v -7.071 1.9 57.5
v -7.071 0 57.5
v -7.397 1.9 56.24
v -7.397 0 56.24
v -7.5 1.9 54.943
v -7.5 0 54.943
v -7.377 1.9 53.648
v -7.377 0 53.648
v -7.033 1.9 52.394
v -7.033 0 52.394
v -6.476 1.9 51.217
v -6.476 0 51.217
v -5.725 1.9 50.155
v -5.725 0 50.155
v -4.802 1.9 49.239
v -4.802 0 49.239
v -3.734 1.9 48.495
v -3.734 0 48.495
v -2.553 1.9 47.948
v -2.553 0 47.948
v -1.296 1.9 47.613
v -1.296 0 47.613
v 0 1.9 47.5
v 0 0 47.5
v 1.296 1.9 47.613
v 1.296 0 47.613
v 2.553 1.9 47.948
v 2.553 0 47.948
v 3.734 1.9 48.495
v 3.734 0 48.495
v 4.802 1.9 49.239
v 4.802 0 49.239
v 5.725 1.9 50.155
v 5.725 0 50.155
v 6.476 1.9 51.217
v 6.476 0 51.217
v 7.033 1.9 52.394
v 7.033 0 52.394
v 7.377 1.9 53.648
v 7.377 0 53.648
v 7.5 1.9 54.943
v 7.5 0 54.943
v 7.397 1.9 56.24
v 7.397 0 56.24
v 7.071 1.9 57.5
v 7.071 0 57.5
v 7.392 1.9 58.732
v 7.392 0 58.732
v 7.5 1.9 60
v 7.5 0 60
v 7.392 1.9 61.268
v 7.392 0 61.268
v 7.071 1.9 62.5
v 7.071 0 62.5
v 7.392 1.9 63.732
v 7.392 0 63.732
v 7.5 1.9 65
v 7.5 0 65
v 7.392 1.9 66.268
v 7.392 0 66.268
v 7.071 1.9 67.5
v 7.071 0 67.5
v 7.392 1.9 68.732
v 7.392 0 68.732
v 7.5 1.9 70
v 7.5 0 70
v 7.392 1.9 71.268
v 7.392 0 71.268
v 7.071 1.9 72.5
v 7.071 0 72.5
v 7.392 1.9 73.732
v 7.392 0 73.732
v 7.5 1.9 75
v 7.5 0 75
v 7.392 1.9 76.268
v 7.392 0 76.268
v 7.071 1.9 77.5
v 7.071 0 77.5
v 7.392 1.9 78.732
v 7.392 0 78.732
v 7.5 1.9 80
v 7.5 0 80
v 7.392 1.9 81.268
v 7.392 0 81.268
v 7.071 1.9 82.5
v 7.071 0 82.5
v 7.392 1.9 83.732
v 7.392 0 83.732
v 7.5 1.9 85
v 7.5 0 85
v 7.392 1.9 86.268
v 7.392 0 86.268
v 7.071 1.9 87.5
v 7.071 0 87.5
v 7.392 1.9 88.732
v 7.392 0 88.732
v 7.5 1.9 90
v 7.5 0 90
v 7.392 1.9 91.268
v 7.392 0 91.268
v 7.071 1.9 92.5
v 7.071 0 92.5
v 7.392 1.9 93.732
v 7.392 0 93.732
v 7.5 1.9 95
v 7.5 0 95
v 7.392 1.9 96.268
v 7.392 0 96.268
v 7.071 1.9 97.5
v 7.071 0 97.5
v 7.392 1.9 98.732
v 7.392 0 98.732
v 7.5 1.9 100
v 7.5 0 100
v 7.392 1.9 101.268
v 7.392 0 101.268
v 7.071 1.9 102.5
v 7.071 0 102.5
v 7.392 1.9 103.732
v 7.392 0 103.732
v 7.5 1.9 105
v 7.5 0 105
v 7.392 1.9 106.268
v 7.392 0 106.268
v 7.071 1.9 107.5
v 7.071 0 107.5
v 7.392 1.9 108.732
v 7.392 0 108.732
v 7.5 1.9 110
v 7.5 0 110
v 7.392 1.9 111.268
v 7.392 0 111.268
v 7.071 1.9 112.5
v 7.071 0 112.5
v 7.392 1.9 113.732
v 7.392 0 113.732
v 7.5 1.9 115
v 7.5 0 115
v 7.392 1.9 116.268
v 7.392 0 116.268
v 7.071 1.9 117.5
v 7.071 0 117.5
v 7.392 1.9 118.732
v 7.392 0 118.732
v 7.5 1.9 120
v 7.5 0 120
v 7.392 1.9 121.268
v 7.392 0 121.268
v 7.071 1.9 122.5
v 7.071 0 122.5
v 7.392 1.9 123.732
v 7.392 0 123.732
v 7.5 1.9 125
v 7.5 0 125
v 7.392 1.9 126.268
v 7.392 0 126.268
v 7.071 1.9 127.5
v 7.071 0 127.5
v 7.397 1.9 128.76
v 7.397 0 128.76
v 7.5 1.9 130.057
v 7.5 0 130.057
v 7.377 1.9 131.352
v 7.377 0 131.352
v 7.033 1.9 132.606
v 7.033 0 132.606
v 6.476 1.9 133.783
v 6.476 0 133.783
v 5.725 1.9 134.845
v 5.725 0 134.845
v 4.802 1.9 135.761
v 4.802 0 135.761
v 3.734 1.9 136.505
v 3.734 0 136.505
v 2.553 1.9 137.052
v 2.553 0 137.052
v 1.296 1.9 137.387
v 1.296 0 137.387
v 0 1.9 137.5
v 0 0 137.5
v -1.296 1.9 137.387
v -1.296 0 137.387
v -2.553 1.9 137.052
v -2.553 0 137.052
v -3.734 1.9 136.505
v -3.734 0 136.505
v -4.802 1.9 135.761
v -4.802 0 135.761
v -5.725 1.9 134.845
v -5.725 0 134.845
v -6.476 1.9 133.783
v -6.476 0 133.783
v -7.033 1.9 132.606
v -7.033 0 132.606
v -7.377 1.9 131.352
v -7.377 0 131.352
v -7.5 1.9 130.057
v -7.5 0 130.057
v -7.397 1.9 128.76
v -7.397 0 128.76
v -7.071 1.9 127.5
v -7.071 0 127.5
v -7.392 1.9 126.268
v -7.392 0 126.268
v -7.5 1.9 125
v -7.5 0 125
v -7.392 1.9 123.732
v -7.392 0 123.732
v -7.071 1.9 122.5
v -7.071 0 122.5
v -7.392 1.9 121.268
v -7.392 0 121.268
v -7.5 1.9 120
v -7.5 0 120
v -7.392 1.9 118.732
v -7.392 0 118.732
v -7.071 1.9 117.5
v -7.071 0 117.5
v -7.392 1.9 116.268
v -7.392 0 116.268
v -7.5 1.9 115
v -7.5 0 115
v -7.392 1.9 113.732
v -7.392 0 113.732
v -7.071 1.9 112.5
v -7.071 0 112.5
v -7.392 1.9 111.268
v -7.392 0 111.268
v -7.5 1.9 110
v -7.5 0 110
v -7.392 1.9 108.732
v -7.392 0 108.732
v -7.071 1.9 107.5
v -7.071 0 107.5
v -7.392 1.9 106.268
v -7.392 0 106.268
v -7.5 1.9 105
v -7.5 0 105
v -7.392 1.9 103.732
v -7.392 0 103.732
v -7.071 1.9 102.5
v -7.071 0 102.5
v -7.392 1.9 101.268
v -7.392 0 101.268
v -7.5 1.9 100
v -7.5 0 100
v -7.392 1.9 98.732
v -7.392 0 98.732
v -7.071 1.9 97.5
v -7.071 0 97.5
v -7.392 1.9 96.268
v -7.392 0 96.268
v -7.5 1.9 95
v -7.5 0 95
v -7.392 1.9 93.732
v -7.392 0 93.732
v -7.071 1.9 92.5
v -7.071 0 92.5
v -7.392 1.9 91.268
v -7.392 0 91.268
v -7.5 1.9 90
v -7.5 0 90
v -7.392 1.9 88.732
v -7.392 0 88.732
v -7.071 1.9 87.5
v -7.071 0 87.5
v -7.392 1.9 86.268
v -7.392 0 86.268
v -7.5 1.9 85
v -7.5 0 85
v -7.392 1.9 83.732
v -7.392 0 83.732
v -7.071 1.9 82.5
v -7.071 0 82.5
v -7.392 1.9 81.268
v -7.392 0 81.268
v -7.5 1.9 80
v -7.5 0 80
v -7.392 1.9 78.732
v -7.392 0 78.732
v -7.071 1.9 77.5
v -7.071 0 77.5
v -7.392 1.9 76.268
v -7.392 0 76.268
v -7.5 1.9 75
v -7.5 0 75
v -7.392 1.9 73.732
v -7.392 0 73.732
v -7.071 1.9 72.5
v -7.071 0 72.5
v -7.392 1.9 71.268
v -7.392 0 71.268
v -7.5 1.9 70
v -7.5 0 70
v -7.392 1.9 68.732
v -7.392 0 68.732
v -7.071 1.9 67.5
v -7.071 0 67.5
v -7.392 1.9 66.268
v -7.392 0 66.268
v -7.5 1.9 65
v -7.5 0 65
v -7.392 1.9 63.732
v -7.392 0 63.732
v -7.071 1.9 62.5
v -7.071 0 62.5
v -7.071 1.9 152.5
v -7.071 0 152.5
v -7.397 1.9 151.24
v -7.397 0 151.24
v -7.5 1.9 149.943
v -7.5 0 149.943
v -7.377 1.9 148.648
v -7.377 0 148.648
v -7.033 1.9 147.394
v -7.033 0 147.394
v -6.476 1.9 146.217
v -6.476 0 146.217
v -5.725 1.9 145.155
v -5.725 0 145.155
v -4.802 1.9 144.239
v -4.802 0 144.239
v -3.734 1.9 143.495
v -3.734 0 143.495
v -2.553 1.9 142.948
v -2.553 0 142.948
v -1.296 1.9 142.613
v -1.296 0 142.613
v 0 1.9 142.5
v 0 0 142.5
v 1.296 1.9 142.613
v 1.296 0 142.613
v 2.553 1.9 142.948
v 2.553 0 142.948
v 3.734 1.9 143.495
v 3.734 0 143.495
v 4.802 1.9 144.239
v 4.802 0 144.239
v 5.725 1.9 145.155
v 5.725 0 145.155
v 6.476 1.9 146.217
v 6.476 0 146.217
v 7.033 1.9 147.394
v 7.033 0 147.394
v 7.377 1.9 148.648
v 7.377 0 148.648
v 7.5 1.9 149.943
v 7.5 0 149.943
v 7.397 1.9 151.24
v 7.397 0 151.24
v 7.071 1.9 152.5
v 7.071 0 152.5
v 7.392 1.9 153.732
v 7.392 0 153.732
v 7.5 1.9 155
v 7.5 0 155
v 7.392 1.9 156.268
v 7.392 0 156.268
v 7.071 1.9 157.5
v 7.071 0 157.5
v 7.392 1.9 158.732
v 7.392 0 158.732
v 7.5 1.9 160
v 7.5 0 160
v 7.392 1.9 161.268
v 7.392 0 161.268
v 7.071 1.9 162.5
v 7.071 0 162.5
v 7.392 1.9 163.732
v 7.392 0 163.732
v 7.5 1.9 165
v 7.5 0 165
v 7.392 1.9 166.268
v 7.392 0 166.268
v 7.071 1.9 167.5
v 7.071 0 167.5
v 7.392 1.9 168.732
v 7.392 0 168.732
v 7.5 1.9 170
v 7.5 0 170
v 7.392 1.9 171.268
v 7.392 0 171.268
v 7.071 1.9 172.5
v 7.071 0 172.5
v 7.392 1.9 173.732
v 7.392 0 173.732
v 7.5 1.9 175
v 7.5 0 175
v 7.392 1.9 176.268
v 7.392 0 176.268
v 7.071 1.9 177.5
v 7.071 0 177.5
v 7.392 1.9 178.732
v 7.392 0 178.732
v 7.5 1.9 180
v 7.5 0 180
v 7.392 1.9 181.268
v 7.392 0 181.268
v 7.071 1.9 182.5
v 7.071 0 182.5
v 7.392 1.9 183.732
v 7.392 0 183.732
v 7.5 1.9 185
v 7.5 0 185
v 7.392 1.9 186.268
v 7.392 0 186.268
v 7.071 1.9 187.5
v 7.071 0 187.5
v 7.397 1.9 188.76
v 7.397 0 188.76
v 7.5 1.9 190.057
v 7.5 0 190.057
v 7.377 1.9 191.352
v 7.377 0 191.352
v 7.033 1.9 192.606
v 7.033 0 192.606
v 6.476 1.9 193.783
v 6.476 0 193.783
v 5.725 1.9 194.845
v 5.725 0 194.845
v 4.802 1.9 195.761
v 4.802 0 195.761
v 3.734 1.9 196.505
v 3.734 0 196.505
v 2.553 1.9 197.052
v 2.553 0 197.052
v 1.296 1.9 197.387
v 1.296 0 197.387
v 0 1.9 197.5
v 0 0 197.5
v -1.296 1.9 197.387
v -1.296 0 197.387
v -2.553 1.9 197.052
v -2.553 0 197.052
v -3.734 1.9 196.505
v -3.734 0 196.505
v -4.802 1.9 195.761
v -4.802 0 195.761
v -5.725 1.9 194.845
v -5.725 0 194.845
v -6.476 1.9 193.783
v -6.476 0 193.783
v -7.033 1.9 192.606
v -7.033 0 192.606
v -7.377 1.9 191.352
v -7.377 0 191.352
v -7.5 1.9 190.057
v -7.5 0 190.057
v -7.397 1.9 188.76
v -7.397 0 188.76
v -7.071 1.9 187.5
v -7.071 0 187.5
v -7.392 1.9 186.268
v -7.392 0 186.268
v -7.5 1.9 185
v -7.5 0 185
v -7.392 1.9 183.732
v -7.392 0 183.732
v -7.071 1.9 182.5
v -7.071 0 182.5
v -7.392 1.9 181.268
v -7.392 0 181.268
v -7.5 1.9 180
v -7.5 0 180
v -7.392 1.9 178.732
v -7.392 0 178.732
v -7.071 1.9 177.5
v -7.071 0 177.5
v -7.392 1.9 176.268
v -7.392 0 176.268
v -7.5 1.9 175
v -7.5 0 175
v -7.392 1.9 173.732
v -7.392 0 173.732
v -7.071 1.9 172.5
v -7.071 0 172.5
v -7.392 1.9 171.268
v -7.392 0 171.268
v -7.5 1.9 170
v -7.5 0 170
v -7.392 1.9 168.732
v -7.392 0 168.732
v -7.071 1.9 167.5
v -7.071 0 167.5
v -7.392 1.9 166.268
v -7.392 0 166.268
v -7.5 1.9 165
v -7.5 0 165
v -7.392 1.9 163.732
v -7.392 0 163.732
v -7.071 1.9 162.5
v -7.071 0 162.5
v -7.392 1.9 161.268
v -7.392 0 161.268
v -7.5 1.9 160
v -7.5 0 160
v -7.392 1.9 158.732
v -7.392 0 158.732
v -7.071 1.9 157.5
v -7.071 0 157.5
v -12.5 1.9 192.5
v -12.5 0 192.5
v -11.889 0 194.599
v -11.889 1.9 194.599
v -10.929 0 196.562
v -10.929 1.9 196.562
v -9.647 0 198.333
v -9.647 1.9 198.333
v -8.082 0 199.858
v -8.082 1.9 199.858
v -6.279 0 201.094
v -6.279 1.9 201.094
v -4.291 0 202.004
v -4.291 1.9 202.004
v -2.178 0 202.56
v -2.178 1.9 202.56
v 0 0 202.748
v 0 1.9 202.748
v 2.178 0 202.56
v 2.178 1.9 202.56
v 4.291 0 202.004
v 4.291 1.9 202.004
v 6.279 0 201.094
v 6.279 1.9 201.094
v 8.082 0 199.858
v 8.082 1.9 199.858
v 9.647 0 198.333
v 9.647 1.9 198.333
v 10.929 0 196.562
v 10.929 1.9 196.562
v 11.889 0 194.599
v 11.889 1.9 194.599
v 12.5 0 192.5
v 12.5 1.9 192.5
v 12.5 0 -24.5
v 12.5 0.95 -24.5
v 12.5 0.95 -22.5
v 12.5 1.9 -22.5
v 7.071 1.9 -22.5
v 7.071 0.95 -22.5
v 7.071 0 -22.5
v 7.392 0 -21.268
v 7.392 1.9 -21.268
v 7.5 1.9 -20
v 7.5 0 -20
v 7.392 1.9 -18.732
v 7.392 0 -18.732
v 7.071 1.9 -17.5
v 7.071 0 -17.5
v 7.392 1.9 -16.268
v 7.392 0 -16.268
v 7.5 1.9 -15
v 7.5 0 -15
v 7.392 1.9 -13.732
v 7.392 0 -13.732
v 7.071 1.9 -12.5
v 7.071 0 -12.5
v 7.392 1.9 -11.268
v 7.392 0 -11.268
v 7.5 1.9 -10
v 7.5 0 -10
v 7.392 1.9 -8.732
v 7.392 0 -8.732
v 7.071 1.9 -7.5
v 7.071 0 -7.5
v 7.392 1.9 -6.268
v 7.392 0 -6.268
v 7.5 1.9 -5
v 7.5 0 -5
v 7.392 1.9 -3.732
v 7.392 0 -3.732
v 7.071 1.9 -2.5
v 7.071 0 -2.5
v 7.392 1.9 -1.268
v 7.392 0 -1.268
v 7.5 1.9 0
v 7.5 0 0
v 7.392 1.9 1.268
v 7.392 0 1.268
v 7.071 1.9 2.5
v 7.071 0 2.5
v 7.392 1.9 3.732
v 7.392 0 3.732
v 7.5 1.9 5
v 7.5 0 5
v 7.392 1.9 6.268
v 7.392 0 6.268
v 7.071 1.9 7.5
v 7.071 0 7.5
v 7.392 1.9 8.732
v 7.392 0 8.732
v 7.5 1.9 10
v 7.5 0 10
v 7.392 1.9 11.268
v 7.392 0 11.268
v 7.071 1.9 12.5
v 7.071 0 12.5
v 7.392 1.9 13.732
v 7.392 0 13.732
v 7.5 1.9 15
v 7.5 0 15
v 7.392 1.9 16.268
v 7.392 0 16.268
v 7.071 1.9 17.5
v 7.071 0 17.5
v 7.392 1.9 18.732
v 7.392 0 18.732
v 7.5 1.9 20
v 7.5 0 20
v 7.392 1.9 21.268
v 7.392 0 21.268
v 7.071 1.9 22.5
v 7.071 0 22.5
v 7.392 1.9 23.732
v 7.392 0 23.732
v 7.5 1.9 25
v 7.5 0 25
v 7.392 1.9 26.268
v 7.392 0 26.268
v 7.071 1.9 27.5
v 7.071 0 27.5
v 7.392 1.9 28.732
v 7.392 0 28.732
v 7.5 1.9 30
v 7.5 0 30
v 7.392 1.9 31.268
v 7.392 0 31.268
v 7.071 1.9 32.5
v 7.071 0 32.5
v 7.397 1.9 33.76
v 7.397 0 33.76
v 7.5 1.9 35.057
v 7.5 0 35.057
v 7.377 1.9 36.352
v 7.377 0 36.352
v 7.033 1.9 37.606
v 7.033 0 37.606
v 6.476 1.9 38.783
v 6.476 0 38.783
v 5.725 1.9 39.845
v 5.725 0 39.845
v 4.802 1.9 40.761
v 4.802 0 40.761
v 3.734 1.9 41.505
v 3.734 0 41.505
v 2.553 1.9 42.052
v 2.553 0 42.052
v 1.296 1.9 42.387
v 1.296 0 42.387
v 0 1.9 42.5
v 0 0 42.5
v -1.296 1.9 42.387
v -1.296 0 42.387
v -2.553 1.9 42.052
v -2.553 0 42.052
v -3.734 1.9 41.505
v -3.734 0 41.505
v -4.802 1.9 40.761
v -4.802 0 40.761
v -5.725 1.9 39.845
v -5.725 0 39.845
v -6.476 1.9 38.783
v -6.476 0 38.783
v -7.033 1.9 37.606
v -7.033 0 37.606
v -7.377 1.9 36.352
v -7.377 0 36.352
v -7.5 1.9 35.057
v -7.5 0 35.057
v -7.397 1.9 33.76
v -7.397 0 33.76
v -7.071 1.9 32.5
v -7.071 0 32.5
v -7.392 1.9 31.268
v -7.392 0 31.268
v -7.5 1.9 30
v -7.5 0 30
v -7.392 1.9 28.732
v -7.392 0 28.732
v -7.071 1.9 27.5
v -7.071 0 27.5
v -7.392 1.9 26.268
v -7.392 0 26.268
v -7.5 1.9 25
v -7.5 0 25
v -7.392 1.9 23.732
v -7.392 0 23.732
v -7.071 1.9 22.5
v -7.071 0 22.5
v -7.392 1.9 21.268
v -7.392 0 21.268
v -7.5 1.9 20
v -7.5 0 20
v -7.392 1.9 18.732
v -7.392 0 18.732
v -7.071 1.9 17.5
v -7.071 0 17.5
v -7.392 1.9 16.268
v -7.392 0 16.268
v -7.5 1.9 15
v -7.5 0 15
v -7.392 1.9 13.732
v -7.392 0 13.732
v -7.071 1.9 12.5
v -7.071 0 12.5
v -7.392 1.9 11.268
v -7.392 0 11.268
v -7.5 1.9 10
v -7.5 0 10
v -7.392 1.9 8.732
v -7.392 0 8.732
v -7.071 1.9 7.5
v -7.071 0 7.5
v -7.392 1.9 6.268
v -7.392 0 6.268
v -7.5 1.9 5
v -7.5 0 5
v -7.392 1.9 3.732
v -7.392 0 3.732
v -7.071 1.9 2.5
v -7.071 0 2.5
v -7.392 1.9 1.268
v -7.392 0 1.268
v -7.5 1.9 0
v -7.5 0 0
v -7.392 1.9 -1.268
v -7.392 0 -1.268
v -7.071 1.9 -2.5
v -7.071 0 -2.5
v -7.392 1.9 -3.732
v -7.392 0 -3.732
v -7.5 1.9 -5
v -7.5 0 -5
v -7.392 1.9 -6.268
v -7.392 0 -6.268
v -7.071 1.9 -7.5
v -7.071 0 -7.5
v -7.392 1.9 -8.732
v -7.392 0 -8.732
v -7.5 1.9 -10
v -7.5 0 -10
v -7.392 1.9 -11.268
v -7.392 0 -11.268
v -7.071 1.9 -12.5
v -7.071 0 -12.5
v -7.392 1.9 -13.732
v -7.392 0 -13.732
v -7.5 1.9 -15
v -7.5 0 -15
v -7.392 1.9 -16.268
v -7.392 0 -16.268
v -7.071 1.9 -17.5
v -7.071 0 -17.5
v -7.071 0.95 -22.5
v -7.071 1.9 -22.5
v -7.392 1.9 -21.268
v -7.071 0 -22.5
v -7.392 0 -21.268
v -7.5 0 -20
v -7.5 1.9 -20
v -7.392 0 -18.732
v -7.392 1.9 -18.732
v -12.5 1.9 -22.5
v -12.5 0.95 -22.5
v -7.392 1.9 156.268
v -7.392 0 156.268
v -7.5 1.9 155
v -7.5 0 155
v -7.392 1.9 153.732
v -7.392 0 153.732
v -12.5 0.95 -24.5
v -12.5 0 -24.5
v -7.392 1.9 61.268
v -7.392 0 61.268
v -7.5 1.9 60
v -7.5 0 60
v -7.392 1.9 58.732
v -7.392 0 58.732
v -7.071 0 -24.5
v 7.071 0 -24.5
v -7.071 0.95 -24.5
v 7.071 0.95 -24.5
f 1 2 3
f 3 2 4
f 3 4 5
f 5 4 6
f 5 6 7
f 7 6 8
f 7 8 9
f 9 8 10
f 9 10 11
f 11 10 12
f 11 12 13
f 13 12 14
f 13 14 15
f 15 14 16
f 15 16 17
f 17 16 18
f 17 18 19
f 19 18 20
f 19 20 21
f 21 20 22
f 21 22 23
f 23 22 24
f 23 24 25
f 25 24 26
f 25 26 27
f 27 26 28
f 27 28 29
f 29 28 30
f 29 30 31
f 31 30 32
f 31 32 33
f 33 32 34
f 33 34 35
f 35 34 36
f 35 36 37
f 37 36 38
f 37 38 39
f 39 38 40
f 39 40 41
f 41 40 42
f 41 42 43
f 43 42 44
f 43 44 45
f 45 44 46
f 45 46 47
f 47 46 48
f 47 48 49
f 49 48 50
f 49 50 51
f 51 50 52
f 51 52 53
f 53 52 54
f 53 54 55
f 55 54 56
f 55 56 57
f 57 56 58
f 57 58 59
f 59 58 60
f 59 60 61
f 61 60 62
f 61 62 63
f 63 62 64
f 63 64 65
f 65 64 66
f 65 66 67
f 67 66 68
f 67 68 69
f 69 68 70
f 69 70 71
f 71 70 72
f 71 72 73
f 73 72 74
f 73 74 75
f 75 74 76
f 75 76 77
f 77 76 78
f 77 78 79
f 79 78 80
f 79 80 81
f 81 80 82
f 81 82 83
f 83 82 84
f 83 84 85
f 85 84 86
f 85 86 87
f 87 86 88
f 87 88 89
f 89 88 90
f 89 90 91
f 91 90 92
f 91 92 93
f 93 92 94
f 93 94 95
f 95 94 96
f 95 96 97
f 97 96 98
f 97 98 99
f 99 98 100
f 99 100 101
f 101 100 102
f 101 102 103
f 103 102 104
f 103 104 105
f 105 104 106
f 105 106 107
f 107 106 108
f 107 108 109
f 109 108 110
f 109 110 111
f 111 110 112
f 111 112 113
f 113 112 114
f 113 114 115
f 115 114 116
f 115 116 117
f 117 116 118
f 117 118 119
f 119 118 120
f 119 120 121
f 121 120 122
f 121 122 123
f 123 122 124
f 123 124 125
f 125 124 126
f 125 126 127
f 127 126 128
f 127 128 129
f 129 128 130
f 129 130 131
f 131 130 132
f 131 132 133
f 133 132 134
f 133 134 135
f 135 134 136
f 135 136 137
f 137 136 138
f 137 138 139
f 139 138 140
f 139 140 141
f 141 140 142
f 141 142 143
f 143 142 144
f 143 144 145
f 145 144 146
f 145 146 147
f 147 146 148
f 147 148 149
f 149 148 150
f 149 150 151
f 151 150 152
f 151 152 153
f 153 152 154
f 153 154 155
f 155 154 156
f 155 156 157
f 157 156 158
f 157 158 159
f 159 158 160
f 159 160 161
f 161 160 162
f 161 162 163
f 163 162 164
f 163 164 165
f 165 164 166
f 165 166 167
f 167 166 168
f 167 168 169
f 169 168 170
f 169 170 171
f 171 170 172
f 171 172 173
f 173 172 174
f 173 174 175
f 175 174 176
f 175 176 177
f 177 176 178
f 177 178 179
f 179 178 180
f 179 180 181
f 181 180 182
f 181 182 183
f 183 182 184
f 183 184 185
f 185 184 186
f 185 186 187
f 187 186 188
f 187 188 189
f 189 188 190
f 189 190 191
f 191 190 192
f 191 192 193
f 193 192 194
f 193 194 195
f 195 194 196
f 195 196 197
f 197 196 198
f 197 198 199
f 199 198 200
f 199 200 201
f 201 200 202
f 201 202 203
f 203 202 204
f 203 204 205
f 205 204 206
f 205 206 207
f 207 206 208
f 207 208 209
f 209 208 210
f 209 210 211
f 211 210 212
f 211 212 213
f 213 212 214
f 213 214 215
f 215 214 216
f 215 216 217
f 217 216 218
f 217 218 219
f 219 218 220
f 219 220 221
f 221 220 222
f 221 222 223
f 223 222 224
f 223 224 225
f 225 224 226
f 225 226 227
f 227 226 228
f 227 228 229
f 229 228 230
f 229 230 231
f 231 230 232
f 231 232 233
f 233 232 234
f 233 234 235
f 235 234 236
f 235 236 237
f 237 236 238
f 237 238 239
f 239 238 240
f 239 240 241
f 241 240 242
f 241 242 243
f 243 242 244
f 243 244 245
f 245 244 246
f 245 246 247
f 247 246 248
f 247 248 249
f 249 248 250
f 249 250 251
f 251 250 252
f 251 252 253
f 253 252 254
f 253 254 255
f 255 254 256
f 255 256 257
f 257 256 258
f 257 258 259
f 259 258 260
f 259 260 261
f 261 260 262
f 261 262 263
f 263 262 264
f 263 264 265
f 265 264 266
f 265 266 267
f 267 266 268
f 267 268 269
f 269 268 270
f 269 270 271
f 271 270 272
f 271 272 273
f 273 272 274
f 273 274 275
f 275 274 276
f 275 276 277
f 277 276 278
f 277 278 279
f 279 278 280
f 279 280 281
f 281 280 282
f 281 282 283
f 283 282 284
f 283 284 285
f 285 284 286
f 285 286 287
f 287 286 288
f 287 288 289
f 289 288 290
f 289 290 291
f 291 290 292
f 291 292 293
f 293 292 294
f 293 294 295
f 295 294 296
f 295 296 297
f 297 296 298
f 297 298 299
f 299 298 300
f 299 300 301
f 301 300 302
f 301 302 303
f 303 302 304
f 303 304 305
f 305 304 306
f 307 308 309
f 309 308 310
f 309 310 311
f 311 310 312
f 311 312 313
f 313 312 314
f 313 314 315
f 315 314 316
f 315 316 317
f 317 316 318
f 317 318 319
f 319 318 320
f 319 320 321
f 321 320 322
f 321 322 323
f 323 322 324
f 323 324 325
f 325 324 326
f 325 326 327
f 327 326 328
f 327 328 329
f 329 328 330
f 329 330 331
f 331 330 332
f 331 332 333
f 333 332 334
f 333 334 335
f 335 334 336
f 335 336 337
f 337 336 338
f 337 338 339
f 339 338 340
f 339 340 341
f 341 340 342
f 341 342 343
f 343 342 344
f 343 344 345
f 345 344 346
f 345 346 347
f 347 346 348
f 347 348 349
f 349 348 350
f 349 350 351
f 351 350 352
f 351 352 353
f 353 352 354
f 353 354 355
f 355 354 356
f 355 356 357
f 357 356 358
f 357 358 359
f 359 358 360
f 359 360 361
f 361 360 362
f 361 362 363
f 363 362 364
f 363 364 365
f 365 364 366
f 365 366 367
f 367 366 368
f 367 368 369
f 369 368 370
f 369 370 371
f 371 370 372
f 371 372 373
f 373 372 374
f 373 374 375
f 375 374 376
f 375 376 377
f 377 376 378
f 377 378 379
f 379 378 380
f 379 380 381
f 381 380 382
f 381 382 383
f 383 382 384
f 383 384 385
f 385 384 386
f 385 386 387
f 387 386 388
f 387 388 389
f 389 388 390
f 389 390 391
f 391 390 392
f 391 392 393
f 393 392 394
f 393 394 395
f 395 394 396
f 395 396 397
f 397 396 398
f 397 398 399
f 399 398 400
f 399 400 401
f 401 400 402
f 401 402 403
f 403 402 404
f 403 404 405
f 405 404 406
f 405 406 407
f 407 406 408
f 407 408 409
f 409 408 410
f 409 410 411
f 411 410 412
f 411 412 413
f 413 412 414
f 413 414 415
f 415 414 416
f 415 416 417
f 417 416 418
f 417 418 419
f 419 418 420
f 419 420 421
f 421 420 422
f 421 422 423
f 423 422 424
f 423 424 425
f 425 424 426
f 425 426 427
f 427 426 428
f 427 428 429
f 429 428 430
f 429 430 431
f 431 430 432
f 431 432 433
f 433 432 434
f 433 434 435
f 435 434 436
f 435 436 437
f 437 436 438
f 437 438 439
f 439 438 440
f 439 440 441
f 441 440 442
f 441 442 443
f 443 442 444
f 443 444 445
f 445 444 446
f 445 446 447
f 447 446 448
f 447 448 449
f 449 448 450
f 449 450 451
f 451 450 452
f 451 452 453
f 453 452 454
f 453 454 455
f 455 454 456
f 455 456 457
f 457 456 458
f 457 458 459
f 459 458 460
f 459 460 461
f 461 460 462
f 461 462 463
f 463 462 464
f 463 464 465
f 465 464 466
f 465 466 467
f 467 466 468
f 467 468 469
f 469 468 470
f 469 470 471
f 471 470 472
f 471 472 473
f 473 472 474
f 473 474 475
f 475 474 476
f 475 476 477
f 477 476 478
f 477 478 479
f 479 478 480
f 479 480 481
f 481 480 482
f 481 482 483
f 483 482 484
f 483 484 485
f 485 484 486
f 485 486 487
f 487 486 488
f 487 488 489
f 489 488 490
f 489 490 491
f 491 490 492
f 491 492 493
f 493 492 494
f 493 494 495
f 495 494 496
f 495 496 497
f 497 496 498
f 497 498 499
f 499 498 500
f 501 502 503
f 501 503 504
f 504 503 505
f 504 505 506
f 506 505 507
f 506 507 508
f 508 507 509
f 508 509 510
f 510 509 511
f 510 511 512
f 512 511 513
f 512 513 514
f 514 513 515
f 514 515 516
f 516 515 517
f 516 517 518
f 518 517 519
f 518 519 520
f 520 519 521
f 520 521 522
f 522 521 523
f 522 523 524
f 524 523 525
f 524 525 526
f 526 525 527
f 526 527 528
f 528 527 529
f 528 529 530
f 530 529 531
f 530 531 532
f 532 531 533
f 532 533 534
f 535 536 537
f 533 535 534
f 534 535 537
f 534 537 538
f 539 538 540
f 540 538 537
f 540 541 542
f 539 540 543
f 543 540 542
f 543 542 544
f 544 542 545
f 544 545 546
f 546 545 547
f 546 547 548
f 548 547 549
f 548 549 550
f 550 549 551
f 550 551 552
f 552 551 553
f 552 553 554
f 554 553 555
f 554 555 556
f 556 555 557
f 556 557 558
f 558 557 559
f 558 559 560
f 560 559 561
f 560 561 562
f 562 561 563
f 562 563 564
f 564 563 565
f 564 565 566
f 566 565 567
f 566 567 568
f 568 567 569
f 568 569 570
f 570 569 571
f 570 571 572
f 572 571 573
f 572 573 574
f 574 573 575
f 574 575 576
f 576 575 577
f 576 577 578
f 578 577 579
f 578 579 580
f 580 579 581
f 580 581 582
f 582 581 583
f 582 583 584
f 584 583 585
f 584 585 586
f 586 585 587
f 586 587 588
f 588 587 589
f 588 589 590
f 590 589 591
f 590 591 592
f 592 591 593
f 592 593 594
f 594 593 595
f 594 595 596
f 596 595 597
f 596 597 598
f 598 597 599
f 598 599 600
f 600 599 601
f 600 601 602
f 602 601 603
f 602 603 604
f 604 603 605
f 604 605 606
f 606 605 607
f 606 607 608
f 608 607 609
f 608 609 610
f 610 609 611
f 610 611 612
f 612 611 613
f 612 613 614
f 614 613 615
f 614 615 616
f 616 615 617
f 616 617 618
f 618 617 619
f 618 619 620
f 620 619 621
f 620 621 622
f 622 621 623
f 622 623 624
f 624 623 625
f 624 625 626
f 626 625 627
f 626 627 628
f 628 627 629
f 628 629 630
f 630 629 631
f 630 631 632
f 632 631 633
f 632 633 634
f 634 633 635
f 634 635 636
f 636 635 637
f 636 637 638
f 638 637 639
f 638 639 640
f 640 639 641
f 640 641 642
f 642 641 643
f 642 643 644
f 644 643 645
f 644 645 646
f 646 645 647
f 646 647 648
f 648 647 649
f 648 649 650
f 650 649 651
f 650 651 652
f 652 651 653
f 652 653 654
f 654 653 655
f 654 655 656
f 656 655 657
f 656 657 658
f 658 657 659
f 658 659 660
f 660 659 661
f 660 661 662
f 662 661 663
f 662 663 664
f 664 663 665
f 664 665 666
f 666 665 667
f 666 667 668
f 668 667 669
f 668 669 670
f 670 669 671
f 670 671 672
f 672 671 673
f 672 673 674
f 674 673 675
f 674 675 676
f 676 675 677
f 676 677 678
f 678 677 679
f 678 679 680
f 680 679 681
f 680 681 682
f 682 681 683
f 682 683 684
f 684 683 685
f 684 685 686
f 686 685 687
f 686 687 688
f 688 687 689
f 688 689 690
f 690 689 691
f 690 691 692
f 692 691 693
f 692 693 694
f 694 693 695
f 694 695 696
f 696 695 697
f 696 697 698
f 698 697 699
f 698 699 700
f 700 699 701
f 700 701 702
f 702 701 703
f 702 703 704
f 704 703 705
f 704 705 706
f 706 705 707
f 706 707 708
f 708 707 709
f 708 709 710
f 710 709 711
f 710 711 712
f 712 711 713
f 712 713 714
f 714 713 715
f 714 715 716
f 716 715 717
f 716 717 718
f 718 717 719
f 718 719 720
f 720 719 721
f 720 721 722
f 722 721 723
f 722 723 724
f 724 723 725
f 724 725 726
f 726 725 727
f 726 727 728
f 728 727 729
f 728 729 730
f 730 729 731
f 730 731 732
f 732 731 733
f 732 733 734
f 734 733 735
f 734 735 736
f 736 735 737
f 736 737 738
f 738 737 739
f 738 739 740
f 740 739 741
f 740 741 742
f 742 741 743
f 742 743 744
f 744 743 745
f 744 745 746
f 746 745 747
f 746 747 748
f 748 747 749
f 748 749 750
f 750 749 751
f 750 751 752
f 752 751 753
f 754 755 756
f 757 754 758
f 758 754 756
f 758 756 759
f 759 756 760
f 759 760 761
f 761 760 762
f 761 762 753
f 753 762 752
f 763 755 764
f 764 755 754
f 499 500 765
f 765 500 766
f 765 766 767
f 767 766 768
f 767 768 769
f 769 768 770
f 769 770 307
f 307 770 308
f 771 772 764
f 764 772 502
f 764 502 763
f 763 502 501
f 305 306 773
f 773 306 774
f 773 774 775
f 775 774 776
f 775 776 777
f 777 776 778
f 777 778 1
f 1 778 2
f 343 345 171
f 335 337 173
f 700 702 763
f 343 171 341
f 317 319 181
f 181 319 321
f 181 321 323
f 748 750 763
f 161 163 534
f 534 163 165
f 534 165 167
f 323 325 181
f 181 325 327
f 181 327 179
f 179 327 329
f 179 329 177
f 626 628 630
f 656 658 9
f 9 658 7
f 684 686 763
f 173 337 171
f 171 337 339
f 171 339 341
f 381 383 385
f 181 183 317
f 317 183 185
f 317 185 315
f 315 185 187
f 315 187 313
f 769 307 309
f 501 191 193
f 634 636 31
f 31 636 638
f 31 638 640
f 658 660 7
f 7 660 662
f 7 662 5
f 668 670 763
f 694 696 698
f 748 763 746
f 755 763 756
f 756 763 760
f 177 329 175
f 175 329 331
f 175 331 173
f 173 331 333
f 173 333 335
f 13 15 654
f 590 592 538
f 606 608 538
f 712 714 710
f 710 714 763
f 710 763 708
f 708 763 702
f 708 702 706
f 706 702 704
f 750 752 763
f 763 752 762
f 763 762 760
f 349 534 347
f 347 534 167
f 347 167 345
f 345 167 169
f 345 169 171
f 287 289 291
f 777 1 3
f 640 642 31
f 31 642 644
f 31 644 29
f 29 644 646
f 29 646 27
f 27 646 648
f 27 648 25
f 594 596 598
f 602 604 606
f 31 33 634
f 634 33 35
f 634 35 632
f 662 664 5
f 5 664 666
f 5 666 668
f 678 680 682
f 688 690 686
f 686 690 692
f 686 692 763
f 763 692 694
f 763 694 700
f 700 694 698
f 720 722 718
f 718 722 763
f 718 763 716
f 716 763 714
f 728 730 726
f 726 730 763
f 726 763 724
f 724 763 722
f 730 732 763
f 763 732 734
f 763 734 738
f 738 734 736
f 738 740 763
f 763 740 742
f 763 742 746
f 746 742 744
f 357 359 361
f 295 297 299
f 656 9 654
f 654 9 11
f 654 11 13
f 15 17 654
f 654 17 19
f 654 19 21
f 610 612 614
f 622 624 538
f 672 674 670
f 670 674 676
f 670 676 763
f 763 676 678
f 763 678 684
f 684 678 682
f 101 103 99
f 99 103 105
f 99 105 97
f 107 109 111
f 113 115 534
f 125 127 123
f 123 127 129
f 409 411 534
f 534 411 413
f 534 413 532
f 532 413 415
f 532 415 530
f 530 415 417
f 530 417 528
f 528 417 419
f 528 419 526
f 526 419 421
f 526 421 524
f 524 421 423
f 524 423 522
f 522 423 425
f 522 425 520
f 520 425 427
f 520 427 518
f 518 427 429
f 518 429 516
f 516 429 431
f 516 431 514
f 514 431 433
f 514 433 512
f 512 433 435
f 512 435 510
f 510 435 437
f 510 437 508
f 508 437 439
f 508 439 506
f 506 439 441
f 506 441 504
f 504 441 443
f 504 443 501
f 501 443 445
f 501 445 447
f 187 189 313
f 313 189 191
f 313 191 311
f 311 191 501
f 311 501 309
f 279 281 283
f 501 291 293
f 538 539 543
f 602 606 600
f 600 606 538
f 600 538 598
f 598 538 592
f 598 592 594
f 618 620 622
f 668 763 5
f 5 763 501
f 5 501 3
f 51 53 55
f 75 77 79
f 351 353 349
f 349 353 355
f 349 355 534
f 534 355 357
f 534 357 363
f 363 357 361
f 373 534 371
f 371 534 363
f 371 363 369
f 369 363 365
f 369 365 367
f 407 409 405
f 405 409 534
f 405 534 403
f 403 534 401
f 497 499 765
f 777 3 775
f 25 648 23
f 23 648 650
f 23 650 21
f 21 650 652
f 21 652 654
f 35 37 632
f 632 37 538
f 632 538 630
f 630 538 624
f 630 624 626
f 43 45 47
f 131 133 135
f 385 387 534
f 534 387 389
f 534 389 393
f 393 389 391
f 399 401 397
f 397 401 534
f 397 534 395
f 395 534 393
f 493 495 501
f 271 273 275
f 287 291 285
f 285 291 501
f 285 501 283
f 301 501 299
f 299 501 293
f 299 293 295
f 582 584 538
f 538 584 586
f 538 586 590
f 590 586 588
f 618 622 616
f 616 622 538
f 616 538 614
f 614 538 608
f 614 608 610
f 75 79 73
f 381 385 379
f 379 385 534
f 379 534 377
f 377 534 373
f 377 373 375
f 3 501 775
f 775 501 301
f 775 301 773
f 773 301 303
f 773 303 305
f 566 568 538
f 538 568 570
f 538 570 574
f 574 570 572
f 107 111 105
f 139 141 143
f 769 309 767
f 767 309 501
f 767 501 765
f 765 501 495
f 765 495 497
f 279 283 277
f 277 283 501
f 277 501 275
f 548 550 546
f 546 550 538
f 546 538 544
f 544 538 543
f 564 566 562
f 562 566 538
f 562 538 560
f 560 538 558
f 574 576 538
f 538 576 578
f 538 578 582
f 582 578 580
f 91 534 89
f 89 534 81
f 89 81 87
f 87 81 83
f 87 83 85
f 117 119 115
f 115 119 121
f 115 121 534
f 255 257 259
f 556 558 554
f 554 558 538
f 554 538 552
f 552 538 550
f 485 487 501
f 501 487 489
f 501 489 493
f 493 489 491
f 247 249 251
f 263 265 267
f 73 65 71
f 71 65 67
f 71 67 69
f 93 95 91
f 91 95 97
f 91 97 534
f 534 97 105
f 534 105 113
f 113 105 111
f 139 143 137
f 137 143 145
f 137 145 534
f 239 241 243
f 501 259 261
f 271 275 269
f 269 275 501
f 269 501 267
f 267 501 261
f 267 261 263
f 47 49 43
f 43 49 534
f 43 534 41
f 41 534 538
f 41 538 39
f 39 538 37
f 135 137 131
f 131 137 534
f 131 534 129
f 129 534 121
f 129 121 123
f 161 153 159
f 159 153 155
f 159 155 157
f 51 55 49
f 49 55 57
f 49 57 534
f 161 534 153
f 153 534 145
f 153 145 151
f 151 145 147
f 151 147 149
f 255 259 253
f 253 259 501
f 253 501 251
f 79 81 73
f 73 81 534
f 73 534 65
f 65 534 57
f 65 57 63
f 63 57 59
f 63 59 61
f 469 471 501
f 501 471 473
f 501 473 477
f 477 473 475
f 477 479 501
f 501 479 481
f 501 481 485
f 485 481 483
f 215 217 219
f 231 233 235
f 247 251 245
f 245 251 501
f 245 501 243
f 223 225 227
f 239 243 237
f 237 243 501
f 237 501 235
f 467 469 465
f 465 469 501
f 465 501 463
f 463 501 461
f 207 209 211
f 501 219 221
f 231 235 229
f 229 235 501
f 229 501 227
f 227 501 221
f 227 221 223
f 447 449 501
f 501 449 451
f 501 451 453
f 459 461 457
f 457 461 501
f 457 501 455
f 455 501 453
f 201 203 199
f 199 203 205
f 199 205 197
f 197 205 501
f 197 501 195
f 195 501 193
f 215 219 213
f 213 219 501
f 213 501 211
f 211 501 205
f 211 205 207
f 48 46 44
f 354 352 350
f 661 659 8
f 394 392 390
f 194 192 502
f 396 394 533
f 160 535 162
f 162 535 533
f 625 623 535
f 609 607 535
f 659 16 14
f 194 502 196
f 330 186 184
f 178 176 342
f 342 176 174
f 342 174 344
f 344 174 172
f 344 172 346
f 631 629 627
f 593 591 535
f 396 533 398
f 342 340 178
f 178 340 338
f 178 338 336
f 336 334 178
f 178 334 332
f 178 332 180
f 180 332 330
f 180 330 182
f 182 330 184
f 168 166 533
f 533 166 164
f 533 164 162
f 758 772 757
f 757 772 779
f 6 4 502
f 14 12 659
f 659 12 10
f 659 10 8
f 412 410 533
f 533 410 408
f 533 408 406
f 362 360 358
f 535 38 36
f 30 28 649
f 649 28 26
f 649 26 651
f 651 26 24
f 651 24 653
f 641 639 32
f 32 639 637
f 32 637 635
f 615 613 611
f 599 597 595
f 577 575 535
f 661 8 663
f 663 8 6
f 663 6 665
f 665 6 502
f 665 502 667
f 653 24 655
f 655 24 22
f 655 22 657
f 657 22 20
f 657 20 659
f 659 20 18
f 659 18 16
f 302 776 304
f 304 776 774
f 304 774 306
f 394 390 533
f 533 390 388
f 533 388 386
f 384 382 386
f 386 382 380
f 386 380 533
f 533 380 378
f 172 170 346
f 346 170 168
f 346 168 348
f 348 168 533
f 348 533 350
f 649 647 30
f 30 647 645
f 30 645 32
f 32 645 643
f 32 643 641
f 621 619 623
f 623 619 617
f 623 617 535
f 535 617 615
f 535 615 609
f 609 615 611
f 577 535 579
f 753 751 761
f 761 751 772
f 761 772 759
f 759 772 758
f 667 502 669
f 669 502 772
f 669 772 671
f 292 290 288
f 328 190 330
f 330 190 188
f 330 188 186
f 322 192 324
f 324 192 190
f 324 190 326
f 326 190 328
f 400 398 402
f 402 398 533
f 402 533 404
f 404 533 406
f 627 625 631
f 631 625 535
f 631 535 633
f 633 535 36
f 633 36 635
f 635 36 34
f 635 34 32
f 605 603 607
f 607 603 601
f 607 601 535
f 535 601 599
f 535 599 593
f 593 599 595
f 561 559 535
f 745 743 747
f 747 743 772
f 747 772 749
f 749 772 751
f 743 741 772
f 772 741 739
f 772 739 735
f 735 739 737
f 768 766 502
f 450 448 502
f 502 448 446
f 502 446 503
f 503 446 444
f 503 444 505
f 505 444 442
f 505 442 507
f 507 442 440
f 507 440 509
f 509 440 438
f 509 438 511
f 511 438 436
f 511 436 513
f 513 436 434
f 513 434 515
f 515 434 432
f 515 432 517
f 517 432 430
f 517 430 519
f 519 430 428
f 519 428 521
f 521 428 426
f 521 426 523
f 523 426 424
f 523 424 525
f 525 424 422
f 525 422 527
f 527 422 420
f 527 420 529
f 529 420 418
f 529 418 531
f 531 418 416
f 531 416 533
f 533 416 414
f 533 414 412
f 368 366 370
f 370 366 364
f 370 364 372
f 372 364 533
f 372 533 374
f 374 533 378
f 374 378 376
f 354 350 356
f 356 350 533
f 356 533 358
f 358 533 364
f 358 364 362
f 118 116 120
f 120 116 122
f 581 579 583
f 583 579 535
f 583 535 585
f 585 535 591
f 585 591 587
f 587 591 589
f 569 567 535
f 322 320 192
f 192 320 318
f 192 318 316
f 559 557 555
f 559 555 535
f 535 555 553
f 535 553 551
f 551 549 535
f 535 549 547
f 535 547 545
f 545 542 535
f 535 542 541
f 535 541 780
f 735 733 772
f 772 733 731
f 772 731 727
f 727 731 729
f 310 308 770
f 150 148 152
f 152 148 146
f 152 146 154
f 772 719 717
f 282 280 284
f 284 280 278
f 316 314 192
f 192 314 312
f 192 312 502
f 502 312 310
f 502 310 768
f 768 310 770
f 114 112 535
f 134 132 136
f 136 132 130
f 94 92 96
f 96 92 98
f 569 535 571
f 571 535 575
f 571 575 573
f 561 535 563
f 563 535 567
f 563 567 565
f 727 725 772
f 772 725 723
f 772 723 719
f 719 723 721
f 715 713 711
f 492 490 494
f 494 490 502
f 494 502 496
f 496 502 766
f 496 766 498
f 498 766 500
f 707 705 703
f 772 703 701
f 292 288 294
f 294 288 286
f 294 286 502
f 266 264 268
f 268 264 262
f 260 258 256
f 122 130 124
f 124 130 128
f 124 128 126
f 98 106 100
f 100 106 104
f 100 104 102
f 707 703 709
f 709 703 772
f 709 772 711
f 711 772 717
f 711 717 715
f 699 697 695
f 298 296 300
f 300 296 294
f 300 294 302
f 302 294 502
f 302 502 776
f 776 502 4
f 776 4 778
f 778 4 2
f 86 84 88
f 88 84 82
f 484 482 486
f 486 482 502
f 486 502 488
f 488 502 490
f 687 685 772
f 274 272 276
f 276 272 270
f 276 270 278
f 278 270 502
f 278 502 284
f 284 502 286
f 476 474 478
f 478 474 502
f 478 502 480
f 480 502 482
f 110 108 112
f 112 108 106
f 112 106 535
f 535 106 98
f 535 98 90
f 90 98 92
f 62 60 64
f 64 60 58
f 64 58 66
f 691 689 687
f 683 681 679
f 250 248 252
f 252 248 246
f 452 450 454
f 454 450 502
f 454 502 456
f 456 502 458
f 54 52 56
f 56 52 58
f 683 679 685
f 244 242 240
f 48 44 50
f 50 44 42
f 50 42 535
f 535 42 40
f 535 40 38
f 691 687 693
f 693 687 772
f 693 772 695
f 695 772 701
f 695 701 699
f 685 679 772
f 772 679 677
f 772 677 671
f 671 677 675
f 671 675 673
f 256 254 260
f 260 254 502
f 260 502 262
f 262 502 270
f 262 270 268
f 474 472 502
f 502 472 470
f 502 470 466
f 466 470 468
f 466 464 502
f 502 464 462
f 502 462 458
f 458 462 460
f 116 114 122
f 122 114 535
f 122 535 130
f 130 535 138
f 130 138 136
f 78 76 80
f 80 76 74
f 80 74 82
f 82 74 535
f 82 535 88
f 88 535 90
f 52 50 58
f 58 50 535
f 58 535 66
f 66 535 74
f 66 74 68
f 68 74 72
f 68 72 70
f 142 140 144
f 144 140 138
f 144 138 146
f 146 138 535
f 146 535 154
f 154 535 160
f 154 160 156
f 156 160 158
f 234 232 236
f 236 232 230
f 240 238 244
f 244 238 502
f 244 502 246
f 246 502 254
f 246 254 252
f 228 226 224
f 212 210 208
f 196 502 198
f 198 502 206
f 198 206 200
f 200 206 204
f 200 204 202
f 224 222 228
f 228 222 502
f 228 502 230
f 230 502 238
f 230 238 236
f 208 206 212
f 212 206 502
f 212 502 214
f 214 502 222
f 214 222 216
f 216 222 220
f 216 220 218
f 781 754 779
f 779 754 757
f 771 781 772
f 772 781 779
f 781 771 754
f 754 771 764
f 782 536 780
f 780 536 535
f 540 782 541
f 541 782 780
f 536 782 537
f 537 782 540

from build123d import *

# Parameters (mm, degrees)
BOSS_EXTRUDE4_DEPTH = 1.9
SKETCH7_W           = 5.428932188
SKETCH7_H           = 2
BOSS_EXTRUDE5_DEPTH = 0.95


with BuildPart() as part:
    # Sketch6 → Boss-Extrude4 (new body)
    with BuildSketch(Plane(origin=(0, 0, 0), x_dir=(1, 0, 0), z_dir=(0, 1, 0))):
        with BuildLine():
            ThreePointArc((-12.5, -192.5), (0, -202.747548784), (12.5, -192.5))
            Line((12.5, -192.5), (12.5, 22.5))
            Line((12.5, 22.5), (7.071067812, 22.5))
            ThreePointArc((7.071067812, 22.5), (7.5, 20), (7.071067812, 17.5))
            ThreePointArc((7.071067812, 17.5), (7.5, 15), (7.071067812, 12.5))
            ThreePointArc((7.071067812, 12.5), (7.5, 10), (7.071067812, 7.5))
            ThreePointArc((7.071067812, 7.5), (7.5, 5), (7.071067812, 2.5))
            ThreePointArc((7.071067812, 2.5), (7.5, 0), (7.071067812, -2.5))
            ThreePointArc((7.071067812, -2.5), (7.5, -5), (7.071067812, -7.5))
            ThreePointArc((7.071067812, -7.5), (7.5, -10), (7.071067812, -12.5))
            ThreePointArc((7.071067812, -12.5), (7.5, -15), (7.071067812, -17.5))
            ThreePointArc((7.071067812, -17.5), (7.5, -20), (7.071067812, -22.5))
            ThreePointArc((7.071067812, -22.5), (7.5, -25), (7.071067812, -27.5))
            ThreePointArc((7.071067812, -27.5), (7.5, -30), (7.071067812, -32.5))
            ThreePointArc((7.071067812, -32.5), (0, -42.5), (-7.071067812, -32.5))
            ThreePointArc((-7.071067812, -32.5), (-7.5, -30), (-7.071067812, -27.5))
            ThreePointArc((-7.071067812, -27.5), (-7.5, -25), (-7.071067812, -22.5))
            ThreePointArc((-7.071067812, -22.5), (-7.5, -20), (-7.071067812, -17.5))
            ThreePointArc((-7.071067812, -17.5), (-7.5, -15), (-7.071067812, -12.5))
            ThreePointArc((-7.071067812, -12.5), (-7.5, -10), (-7.071067812, -7.5))
            ThreePointArc((-7.071067812, -7.5), (-7.5, -5), (-7.071067812, -2.5))
            ThreePointArc((-7.071067812, -2.5), (-7.5, 0), (-7.071067812, 2.5))
            ThreePointArc((-7.071067812, 2.5), (-7.5, 5), (-7.071067812, 7.5))
            ThreePointArc((-7.071067812, 7.5), (-7.5, 10), (-7.071067812, 12.5))
            ThreePointArc((-7.071067812, 12.5), (-7.5, 15), (-7.071067812, 17.5))
            ThreePointArc((-7.071067812, 17.5), (-7.5, 20), (-7.071067812, 22.5))
            Line((-7.071067812, 22.5), (-12.5, 22.5))
            Line((-12.5, 22.5), (-12.5, -192.5))
        make_face()
        with BuildLine():
            ThreePointArc((7.071067812, -57.5), (7.5, -60), (7.071067812, -62.5))
            ThreePointArc((7.071067812, -62.5), (7.5, -65), (7.071067812, -67.5))
            ThreePointArc((7.071067812, -67.5), (7.5, -70), (7.071067812, -72.5))
            ThreePointArc((7.071067812, -72.5), (7.5, -75), (7.071067812, -77.5))
            ThreePointArc((7.071067812, -77.5), (7.5, -80), (7.071067812, -82.5))
            ThreePointArc((7.071067812, -82.5), (7.5, -85), (7.071067812, -87.5))
            ThreePointArc((7.071067812, -87.5), (7.5, -90), (7.071067812, -92.5))
            ThreePointArc((7.071067812, -92.5), (7.5, -95), (7.071067812, -97.5))
            ThreePointArc((7.071067812, -97.5), (7.5, -100), (7.071067812, -102.5))
            ThreePointArc((7.071067812, -102.5), (7.5, -105), (7.071067812, -107.5))
            ThreePointArc((7.071067812, -107.5), (7.5, -110), (7.071067812, -112.5))
            ThreePointArc((7.071067812, -112.5), (7.5, -115), (7.071067812, -117.5))
            ThreePointArc((7.071067812, -117.5), (7.5, -120), (7.071067812, -122.5))
            ThreePointArc((7.071067812, -122.5), (7.5, -125), (7.071067812, -127.5))
            ThreePointArc((7.071067812, -127.5), (0, -137.5), (-7.071067812, -127.5))
            ThreePointArc((-7.071067812, -127.5), (-7.5, -125), (-7.071067812, -122.5))
            ThreePointArc((-7.071067812, -122.5), (-7.5, -120), (-7.071067812, -117.5))
            ThreePointArc((-7.071067812, -117.5), (-7.5, -115), (-7.071067812, -112.5))
            ThreePointArc((-7.071067812, -112.5), (-7.5, -110), (-7.071067812, -107.5))
            ThreePointArc((-7.071067812, -107.5), (-7.5, -105), (-7.071067812, -102.5))
            ThreePointArc((-7.071067812, -102.5), (-7.5, -100), (-7.071067812, -97.5))
            ThreePointArc((-7.071067812, -97.5), (-7.5, -95), (-7.071067812, -92.5))
            ThreePointArc((-7.071067812, -92.5), (-7.5, -90), (-7.071067812, -87.5))
            ThreePointArc((-7.071067812, -87.5), (-7.5, -85), (-7.071067812, -82.5))
            ThreePointArc((-7.071067812, -82.5), (-7.5, -80), (-7.071067812, -77.5))
            ThreePointArc((-7.071067812, -77.5), (-7.5, -75), (-7.071067812, -72.5))
            ThreePointArc((-7.071067812, -72.5), (-7.5, -70), (-7.071067812, -67.5))
            ThreePointArc((-7.071067812, -67.5), (-7.5, -65), (-7.071067812, -62.5))
            ThreePointArc((-7.071067812, -62.5), (-7.5, -60), (-7.071067812, -57.5))
            ThreePointArc((-7.071067812, -57.5), (0, -47.5), (7.071067812, -57.5))
        make_face(mode=Mode.SUBTRACT)
        with BuildLine():
            ThreePointArc((7.071067812, -152.5), (7.5, -155), (7.071067812, -157.5))
            ThreePointArc((7.071067812, -157.5), (7.5, -160), (7.071067812, -162.5))
            ThreePointArc((7.071067812, -162.5), (7.5, -165), (7.071067812, -167.5))
            ThreePointArc((7.071067812, -167.5), (7.5, -170), (7.071067812, -172.5))
            ThreePointArc((7.071067812, -172.5), (7.5, -175), (7.071067812, -177.5))
            ThreePointArc((7.071067812, -177.5), (7.5, -180), (7.071067812, -182.5))
            ThreePointArc((7.071067812, -182.5), (7.5, -185), (7.071067812, -187.5))
            ThreePointArc((7.071067812, -187.5), (0, -197.5), (-7.071067812, -187.5))
            ThreePointArc((-7.071067812, -187.5), (-7.5, -185), (-7.071067812, -182.5))
            ThreePointArc((-7.071067812, -182.5), (-7.5, -180), (-7.071067812, -177.5))
            ThreePointArc((-7.071067812, -177.5), (-7.5, -175), (-7.071067812, -172.5))
            ThreePointArc((-7.071067812, -172.5), (-7.5, -170), (-7.071067812, -167.5))
            ThreePointArc((-7.071067812, -167.5), (-7.5, -165), (-7.071067812, -162.5))
            ThreePointArc((-7.071067812, -162.5), (-7.5, -160), (-7.071067812, -157.5))
            ThreePointArc((-7.071067812, -157.5), (-7.5, -155), (-7.071067812, -152.5))
            ThreePointArc((-7.071067812, -152.5), (0, -142.5), (7.071067812, -152.5))
        make_face(mode=Mode.SUBTRACT)
    extrude(amount=BOSS_EXTRUDE4_DEPTH)

    # Sketch7 → Boss-Extrude5 (add)
    with BuildSketch(Plane(origin=(0, 0, 0), x_dir=(1, 0, 0), z_dir=(0, 1, 0))):
        with Locations((-9.785533906, 23.5)):
            Rectangle(SKETCH7_W, SKETCH7_H)
        with Locations((9.785533906, 23.5)):
            Rectangle(SKETCH7_W, SKETCH7_H)
    extrude(amount=BOSS_EXTRUDE5_DEPTH)


solid = part.part
